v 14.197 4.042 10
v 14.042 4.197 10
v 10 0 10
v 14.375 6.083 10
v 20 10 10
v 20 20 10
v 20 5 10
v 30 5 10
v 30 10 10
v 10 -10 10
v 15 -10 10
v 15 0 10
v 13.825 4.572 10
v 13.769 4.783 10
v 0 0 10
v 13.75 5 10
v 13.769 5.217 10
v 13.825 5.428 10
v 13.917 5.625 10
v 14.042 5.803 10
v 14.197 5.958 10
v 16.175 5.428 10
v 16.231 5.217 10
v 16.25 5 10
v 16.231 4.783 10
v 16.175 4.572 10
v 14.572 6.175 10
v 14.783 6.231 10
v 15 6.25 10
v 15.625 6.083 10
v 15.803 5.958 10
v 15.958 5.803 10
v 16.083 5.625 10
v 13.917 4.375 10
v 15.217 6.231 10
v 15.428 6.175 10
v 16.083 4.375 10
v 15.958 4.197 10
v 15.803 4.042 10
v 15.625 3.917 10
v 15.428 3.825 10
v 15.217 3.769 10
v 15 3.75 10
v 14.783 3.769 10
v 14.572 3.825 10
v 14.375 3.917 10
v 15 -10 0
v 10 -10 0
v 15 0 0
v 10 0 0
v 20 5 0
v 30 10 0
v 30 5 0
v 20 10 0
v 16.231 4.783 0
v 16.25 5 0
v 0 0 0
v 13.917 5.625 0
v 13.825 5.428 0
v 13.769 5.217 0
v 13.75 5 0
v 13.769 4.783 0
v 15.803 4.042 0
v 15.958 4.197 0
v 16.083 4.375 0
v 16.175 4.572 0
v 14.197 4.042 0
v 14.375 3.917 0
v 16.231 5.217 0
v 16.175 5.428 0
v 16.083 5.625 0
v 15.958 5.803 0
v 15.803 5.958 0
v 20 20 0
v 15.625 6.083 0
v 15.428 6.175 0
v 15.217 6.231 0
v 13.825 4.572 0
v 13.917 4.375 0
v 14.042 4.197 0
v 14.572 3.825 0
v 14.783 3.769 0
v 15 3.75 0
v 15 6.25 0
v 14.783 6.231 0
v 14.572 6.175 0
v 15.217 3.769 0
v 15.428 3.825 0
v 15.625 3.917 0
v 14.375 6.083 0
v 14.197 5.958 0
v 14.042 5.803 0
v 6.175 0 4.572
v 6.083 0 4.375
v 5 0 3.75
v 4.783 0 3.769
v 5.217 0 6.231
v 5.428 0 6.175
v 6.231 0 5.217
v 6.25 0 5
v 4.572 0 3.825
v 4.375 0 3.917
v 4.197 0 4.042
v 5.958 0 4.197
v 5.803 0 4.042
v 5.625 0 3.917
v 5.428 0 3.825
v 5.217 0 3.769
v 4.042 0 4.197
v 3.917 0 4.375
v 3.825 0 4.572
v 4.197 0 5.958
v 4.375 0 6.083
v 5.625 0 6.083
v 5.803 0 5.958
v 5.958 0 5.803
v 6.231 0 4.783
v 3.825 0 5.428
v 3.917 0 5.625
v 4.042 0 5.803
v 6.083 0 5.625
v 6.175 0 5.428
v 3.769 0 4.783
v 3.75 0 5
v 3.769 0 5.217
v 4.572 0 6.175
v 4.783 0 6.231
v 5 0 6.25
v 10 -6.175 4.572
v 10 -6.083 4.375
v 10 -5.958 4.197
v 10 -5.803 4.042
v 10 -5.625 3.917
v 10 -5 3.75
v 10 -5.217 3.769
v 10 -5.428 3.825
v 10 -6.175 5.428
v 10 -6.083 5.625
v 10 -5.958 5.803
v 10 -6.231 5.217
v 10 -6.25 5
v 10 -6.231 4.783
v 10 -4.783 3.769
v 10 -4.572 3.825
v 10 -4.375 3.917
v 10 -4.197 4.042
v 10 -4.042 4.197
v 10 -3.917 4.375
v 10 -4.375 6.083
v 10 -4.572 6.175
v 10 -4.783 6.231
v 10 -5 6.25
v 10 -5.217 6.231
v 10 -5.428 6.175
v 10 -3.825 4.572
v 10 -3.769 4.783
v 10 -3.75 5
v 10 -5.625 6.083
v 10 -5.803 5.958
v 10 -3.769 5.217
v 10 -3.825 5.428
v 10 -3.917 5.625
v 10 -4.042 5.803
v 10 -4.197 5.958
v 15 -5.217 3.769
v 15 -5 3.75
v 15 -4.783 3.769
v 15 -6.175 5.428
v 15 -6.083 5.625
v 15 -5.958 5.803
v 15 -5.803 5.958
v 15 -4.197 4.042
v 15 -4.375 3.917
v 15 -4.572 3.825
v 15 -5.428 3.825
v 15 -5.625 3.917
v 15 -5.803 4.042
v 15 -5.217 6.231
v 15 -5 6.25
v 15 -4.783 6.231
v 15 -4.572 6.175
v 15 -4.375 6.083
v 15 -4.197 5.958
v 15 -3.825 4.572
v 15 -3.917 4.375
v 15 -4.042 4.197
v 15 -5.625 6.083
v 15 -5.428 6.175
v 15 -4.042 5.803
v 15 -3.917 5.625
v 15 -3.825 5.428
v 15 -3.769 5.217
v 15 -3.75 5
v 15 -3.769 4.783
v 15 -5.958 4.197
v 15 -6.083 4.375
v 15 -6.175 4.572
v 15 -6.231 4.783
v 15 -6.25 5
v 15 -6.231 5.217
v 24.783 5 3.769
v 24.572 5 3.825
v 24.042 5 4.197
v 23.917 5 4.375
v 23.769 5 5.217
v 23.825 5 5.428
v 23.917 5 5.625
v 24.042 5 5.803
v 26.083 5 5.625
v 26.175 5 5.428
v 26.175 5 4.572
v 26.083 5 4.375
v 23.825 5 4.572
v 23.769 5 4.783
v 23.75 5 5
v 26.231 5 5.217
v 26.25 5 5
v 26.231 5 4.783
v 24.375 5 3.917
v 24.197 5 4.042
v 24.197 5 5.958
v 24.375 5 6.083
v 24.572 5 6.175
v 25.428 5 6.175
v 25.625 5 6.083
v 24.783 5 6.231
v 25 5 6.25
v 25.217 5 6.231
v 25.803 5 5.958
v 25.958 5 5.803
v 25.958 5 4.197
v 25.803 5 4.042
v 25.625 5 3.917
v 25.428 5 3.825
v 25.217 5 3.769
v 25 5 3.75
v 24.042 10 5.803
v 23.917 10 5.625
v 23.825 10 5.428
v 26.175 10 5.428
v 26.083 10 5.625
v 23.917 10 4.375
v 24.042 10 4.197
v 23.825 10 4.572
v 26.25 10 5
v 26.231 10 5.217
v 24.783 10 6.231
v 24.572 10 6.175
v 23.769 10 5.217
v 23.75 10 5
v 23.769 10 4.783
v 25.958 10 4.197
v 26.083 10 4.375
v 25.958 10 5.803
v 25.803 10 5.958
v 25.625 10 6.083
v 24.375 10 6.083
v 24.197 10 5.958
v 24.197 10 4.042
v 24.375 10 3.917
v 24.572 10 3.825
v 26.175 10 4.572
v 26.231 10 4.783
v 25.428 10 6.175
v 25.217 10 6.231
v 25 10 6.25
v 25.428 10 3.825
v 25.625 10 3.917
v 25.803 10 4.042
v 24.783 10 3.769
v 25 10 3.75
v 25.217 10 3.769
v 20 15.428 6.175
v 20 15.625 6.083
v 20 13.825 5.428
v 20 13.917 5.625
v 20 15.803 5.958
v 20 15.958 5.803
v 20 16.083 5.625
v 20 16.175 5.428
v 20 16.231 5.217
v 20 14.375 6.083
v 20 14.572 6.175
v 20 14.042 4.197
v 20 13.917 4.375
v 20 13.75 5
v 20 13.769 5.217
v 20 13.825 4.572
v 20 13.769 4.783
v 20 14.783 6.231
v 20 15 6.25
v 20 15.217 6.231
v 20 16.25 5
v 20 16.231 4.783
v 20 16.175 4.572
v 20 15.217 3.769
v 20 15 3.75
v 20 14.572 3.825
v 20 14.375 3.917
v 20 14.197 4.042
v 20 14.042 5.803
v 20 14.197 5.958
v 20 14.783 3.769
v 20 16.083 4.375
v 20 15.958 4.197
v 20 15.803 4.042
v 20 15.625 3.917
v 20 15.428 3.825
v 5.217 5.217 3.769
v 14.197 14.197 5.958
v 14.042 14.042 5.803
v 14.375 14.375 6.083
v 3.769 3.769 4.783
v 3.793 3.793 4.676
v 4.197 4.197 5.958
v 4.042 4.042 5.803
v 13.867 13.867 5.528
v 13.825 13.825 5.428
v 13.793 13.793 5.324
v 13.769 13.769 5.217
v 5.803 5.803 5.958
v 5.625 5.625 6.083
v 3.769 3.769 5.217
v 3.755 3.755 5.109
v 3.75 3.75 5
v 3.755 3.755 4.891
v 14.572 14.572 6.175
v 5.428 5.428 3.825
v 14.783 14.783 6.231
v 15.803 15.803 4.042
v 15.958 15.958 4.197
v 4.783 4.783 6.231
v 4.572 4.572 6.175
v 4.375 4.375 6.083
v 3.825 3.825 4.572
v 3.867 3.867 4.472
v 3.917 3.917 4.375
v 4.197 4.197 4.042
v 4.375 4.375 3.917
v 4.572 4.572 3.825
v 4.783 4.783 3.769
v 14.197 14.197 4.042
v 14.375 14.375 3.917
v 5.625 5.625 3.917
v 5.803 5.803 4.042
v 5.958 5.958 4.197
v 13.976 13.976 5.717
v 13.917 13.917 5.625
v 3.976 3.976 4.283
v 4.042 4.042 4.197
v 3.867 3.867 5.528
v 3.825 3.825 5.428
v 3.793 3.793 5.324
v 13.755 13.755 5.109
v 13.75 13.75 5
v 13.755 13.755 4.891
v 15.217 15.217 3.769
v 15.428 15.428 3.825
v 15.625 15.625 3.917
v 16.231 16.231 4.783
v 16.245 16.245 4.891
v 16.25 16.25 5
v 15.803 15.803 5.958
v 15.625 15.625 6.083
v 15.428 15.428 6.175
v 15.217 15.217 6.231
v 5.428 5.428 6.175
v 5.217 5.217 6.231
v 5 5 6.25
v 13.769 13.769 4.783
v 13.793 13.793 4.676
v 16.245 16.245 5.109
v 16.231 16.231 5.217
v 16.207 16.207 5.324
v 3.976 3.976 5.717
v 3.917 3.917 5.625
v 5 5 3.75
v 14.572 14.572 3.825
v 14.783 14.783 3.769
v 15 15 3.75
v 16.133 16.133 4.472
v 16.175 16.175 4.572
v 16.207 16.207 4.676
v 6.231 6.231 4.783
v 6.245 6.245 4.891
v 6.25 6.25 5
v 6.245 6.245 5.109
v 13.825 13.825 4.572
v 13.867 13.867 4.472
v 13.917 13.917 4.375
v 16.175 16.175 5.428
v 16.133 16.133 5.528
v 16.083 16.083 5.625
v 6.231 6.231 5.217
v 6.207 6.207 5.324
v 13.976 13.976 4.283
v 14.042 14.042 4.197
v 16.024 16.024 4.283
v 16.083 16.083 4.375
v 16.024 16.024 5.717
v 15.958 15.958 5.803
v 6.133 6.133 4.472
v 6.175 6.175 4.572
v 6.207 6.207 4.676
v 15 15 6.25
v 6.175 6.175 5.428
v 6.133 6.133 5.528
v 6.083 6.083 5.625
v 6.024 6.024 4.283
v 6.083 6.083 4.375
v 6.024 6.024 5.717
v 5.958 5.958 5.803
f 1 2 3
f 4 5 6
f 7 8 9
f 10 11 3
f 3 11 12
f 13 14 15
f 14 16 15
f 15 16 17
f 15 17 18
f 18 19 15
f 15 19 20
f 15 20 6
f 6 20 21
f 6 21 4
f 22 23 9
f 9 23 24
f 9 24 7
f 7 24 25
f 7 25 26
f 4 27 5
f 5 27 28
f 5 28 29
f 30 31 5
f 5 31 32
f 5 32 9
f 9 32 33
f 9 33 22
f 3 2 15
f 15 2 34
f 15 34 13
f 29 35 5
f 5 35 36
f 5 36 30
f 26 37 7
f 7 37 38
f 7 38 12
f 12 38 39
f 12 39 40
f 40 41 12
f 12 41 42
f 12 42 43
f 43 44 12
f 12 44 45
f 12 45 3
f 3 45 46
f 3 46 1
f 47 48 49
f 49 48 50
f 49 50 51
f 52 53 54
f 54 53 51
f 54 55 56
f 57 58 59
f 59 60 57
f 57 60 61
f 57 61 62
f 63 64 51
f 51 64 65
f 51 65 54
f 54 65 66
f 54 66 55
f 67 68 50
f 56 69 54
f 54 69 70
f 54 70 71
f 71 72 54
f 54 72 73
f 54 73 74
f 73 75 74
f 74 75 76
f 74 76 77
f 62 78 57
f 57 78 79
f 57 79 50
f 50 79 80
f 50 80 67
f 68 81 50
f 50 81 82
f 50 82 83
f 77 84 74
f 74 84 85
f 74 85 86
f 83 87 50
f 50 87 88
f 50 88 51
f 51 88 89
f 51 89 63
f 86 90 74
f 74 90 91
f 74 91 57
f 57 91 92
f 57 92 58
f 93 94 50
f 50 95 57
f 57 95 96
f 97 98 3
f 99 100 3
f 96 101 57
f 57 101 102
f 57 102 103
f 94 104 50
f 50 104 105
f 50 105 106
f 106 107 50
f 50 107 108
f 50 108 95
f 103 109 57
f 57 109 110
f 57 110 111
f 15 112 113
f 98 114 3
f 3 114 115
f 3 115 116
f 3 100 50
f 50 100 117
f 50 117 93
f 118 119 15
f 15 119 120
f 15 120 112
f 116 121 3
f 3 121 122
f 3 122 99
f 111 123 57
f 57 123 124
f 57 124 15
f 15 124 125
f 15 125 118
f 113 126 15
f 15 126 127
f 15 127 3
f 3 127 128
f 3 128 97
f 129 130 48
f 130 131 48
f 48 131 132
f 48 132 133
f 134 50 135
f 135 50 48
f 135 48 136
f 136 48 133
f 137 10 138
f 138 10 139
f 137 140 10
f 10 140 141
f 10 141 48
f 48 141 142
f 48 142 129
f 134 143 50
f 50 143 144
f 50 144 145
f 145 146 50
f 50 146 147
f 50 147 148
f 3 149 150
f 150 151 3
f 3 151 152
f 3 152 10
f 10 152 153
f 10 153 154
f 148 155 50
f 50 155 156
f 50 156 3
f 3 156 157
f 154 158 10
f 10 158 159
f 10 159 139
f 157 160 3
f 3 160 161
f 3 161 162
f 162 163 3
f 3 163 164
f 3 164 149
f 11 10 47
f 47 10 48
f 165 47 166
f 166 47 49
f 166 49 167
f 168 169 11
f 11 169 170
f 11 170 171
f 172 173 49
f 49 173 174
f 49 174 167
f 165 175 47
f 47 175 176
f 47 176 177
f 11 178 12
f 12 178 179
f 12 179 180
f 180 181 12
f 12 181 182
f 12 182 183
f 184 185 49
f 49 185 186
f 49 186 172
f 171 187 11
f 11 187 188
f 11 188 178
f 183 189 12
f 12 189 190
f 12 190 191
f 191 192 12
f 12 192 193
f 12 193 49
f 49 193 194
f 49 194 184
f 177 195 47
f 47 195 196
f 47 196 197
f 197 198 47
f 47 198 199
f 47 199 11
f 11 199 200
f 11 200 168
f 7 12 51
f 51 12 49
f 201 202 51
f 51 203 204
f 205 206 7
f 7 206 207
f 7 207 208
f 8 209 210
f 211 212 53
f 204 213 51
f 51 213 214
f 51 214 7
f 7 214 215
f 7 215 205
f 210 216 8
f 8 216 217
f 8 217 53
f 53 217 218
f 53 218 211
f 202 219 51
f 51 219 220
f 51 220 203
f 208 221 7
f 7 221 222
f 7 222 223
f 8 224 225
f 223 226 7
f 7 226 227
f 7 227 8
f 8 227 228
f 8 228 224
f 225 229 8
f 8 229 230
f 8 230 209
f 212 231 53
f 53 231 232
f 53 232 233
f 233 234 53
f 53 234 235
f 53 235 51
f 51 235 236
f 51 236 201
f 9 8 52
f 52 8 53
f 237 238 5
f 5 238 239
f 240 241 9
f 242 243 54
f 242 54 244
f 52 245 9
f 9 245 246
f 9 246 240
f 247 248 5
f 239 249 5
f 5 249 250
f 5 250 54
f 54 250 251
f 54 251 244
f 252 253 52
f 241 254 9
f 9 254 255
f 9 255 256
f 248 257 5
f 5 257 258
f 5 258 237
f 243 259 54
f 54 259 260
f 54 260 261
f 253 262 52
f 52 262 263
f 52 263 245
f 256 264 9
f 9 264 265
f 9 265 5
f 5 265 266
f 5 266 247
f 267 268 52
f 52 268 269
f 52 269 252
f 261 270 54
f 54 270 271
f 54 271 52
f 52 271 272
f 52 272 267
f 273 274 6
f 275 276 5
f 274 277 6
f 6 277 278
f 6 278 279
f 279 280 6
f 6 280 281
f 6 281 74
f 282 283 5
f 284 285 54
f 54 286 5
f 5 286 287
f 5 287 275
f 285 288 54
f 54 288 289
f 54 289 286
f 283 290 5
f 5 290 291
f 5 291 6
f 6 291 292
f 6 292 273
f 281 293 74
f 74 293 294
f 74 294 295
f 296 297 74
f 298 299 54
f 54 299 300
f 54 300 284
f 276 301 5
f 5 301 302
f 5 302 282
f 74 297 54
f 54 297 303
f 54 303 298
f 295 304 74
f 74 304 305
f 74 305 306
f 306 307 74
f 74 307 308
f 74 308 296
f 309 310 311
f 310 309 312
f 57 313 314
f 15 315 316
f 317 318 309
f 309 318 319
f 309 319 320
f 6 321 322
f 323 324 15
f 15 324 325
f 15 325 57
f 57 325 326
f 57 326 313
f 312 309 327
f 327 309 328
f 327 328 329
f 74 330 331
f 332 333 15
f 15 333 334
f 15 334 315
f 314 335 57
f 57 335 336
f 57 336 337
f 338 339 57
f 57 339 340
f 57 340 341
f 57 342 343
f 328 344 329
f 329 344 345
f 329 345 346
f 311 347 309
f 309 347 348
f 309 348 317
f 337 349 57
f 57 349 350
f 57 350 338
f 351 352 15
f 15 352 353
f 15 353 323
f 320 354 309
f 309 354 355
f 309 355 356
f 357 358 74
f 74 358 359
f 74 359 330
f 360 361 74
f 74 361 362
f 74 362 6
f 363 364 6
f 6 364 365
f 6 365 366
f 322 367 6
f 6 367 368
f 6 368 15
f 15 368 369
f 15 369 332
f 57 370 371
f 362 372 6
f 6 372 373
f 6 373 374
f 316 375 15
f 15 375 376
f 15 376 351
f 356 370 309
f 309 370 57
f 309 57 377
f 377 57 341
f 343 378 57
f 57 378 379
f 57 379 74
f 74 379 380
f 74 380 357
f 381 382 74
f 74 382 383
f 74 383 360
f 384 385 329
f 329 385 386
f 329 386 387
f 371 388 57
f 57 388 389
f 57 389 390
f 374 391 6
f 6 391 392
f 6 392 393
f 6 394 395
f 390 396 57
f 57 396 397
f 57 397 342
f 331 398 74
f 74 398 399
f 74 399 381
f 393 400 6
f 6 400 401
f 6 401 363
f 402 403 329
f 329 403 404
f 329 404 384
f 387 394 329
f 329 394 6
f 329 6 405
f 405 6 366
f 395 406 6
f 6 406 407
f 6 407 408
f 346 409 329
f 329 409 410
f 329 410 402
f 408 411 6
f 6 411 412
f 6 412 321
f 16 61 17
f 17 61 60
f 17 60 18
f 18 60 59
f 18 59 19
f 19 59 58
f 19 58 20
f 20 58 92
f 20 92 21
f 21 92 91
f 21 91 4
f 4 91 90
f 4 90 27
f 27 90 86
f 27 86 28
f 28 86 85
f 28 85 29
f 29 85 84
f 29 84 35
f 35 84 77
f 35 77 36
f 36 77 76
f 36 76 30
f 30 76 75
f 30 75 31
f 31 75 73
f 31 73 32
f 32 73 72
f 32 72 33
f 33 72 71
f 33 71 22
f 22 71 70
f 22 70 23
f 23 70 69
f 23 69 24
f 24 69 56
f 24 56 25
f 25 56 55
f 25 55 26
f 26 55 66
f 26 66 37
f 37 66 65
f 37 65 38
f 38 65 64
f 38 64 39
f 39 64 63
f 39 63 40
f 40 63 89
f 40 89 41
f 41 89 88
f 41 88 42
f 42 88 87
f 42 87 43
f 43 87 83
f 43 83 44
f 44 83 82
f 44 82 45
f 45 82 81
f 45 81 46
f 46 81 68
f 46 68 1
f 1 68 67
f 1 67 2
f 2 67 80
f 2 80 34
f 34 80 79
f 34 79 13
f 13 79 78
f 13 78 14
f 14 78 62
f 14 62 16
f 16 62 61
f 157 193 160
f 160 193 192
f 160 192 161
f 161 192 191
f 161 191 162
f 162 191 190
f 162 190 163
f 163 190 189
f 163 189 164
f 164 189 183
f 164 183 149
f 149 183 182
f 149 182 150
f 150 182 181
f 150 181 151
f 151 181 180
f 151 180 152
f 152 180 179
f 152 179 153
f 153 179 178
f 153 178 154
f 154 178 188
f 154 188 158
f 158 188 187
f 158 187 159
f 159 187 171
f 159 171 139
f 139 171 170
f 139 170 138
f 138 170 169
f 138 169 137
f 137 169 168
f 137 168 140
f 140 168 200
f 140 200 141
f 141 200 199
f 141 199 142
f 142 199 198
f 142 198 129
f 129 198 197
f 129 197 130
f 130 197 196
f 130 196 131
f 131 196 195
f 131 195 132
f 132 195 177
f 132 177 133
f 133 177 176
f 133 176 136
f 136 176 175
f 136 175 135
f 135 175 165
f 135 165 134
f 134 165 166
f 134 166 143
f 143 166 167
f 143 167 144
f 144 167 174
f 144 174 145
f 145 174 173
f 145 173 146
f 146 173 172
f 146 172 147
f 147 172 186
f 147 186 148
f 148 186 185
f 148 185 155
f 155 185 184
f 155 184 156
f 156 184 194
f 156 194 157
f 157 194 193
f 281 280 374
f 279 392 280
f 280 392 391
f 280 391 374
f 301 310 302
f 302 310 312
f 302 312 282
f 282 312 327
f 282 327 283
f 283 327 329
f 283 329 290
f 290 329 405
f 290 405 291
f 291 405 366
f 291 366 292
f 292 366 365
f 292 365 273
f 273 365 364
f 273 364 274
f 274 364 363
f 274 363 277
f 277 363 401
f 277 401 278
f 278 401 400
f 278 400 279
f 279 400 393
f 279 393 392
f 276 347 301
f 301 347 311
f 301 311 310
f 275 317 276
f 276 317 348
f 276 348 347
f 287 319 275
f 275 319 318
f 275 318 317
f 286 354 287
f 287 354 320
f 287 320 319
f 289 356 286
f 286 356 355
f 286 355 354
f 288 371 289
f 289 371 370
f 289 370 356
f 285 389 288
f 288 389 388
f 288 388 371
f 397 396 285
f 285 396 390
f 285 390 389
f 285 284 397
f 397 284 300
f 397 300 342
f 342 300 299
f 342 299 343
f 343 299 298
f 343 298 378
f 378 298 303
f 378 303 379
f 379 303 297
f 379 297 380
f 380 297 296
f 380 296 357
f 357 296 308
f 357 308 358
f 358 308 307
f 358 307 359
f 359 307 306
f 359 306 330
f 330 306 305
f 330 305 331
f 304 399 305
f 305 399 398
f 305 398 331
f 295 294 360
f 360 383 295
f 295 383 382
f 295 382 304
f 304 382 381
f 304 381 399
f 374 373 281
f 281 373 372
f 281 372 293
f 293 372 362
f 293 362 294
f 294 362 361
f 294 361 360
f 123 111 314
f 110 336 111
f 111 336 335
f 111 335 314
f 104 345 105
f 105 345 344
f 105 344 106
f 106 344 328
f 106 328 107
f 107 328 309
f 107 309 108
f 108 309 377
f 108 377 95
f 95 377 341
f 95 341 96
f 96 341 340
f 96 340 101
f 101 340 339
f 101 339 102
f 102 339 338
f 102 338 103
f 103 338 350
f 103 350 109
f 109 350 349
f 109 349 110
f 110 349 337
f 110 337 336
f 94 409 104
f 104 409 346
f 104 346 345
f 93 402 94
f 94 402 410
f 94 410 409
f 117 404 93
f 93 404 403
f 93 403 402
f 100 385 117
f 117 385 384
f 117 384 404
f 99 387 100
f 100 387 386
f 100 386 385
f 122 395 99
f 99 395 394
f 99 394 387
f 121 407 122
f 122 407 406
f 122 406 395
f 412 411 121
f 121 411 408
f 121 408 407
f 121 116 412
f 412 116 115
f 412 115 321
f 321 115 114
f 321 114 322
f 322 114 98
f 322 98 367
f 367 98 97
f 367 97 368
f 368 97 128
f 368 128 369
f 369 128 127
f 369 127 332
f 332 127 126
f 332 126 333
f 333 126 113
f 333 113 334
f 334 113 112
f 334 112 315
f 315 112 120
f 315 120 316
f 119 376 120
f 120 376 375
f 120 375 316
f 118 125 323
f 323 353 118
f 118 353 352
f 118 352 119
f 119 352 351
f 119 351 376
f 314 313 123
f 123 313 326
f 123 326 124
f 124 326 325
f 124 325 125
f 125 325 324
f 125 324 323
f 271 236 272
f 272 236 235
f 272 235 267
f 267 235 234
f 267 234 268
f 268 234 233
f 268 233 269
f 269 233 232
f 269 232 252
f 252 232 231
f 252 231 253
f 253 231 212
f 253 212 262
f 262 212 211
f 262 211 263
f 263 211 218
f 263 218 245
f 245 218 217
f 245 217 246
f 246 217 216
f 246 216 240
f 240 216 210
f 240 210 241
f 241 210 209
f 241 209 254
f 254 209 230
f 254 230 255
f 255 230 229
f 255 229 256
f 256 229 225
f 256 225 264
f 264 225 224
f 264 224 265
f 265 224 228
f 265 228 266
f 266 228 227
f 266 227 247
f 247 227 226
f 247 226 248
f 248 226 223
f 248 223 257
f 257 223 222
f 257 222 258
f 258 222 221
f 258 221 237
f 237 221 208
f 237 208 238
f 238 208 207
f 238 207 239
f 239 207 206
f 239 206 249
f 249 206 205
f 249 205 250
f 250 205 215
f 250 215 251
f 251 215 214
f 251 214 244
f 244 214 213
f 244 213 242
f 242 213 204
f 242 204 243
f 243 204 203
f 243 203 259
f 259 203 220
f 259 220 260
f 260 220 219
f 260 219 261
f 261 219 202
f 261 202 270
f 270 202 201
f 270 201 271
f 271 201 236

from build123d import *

# Parameters (mm, degrees)
SKETCH1_R          = 1.25
MAIN_DEPTH         = 10
SKETCH2_R          = 1.25
CUT_EXTRUDE1_DEPTH = 21
SKETCH3_R          = 1.25
CUT_EXTRUDE2_DEPTH = 21


with BuildPart() as part:
    # Sketch1 → Main (new body)
    with BuildSketch(Plane.XY):
        Polygon((0, 0), (20, 20), (20, 10), (30, 10), (30, 5), (20, 5), (15, 0), (15, -10), (10, -10), (10, 0), align=None)
        with Locations((15, 5)):
            Circle(SKETCH1_R, mode=Mode.SUBTRACT)
    extrude(amount=MAIN_DEPTH)

    # Sketch2 → Cut-Extrude1 (cut, through all)
    with BuildSketch(Plane(origin=(20, 0, 0), x_dir=(0, 0, -1), z_dir=(1, 0, 0))):
        with Locations((-5, -5)):
            Circle(SKETCH2_R)
        with Locations((-5, 15)):
            Circle(SKETCH2_R)
    extrude(amount=-CUT_EXTRUDE1_DEPTH, mode=Mode.SUBTRACT)

    # Sketch3 → Cut-Extrude2 (cut, through all)
    with BuildSketch(Plane(origin=(0, 0, 0), x_dir=(-1, 0, 0), z_dir=(0, -1, 0))):
        with Locations((-5, -5)):
            Circle(SKETCH3_R)
        with Locations((-25, -5)):
            Circle(SKETCH3_R)
    extrude(amount=-CUT_EXTRUDE2_DEPTH, mode=Mode.SUBTRACT)


solid = part.part
